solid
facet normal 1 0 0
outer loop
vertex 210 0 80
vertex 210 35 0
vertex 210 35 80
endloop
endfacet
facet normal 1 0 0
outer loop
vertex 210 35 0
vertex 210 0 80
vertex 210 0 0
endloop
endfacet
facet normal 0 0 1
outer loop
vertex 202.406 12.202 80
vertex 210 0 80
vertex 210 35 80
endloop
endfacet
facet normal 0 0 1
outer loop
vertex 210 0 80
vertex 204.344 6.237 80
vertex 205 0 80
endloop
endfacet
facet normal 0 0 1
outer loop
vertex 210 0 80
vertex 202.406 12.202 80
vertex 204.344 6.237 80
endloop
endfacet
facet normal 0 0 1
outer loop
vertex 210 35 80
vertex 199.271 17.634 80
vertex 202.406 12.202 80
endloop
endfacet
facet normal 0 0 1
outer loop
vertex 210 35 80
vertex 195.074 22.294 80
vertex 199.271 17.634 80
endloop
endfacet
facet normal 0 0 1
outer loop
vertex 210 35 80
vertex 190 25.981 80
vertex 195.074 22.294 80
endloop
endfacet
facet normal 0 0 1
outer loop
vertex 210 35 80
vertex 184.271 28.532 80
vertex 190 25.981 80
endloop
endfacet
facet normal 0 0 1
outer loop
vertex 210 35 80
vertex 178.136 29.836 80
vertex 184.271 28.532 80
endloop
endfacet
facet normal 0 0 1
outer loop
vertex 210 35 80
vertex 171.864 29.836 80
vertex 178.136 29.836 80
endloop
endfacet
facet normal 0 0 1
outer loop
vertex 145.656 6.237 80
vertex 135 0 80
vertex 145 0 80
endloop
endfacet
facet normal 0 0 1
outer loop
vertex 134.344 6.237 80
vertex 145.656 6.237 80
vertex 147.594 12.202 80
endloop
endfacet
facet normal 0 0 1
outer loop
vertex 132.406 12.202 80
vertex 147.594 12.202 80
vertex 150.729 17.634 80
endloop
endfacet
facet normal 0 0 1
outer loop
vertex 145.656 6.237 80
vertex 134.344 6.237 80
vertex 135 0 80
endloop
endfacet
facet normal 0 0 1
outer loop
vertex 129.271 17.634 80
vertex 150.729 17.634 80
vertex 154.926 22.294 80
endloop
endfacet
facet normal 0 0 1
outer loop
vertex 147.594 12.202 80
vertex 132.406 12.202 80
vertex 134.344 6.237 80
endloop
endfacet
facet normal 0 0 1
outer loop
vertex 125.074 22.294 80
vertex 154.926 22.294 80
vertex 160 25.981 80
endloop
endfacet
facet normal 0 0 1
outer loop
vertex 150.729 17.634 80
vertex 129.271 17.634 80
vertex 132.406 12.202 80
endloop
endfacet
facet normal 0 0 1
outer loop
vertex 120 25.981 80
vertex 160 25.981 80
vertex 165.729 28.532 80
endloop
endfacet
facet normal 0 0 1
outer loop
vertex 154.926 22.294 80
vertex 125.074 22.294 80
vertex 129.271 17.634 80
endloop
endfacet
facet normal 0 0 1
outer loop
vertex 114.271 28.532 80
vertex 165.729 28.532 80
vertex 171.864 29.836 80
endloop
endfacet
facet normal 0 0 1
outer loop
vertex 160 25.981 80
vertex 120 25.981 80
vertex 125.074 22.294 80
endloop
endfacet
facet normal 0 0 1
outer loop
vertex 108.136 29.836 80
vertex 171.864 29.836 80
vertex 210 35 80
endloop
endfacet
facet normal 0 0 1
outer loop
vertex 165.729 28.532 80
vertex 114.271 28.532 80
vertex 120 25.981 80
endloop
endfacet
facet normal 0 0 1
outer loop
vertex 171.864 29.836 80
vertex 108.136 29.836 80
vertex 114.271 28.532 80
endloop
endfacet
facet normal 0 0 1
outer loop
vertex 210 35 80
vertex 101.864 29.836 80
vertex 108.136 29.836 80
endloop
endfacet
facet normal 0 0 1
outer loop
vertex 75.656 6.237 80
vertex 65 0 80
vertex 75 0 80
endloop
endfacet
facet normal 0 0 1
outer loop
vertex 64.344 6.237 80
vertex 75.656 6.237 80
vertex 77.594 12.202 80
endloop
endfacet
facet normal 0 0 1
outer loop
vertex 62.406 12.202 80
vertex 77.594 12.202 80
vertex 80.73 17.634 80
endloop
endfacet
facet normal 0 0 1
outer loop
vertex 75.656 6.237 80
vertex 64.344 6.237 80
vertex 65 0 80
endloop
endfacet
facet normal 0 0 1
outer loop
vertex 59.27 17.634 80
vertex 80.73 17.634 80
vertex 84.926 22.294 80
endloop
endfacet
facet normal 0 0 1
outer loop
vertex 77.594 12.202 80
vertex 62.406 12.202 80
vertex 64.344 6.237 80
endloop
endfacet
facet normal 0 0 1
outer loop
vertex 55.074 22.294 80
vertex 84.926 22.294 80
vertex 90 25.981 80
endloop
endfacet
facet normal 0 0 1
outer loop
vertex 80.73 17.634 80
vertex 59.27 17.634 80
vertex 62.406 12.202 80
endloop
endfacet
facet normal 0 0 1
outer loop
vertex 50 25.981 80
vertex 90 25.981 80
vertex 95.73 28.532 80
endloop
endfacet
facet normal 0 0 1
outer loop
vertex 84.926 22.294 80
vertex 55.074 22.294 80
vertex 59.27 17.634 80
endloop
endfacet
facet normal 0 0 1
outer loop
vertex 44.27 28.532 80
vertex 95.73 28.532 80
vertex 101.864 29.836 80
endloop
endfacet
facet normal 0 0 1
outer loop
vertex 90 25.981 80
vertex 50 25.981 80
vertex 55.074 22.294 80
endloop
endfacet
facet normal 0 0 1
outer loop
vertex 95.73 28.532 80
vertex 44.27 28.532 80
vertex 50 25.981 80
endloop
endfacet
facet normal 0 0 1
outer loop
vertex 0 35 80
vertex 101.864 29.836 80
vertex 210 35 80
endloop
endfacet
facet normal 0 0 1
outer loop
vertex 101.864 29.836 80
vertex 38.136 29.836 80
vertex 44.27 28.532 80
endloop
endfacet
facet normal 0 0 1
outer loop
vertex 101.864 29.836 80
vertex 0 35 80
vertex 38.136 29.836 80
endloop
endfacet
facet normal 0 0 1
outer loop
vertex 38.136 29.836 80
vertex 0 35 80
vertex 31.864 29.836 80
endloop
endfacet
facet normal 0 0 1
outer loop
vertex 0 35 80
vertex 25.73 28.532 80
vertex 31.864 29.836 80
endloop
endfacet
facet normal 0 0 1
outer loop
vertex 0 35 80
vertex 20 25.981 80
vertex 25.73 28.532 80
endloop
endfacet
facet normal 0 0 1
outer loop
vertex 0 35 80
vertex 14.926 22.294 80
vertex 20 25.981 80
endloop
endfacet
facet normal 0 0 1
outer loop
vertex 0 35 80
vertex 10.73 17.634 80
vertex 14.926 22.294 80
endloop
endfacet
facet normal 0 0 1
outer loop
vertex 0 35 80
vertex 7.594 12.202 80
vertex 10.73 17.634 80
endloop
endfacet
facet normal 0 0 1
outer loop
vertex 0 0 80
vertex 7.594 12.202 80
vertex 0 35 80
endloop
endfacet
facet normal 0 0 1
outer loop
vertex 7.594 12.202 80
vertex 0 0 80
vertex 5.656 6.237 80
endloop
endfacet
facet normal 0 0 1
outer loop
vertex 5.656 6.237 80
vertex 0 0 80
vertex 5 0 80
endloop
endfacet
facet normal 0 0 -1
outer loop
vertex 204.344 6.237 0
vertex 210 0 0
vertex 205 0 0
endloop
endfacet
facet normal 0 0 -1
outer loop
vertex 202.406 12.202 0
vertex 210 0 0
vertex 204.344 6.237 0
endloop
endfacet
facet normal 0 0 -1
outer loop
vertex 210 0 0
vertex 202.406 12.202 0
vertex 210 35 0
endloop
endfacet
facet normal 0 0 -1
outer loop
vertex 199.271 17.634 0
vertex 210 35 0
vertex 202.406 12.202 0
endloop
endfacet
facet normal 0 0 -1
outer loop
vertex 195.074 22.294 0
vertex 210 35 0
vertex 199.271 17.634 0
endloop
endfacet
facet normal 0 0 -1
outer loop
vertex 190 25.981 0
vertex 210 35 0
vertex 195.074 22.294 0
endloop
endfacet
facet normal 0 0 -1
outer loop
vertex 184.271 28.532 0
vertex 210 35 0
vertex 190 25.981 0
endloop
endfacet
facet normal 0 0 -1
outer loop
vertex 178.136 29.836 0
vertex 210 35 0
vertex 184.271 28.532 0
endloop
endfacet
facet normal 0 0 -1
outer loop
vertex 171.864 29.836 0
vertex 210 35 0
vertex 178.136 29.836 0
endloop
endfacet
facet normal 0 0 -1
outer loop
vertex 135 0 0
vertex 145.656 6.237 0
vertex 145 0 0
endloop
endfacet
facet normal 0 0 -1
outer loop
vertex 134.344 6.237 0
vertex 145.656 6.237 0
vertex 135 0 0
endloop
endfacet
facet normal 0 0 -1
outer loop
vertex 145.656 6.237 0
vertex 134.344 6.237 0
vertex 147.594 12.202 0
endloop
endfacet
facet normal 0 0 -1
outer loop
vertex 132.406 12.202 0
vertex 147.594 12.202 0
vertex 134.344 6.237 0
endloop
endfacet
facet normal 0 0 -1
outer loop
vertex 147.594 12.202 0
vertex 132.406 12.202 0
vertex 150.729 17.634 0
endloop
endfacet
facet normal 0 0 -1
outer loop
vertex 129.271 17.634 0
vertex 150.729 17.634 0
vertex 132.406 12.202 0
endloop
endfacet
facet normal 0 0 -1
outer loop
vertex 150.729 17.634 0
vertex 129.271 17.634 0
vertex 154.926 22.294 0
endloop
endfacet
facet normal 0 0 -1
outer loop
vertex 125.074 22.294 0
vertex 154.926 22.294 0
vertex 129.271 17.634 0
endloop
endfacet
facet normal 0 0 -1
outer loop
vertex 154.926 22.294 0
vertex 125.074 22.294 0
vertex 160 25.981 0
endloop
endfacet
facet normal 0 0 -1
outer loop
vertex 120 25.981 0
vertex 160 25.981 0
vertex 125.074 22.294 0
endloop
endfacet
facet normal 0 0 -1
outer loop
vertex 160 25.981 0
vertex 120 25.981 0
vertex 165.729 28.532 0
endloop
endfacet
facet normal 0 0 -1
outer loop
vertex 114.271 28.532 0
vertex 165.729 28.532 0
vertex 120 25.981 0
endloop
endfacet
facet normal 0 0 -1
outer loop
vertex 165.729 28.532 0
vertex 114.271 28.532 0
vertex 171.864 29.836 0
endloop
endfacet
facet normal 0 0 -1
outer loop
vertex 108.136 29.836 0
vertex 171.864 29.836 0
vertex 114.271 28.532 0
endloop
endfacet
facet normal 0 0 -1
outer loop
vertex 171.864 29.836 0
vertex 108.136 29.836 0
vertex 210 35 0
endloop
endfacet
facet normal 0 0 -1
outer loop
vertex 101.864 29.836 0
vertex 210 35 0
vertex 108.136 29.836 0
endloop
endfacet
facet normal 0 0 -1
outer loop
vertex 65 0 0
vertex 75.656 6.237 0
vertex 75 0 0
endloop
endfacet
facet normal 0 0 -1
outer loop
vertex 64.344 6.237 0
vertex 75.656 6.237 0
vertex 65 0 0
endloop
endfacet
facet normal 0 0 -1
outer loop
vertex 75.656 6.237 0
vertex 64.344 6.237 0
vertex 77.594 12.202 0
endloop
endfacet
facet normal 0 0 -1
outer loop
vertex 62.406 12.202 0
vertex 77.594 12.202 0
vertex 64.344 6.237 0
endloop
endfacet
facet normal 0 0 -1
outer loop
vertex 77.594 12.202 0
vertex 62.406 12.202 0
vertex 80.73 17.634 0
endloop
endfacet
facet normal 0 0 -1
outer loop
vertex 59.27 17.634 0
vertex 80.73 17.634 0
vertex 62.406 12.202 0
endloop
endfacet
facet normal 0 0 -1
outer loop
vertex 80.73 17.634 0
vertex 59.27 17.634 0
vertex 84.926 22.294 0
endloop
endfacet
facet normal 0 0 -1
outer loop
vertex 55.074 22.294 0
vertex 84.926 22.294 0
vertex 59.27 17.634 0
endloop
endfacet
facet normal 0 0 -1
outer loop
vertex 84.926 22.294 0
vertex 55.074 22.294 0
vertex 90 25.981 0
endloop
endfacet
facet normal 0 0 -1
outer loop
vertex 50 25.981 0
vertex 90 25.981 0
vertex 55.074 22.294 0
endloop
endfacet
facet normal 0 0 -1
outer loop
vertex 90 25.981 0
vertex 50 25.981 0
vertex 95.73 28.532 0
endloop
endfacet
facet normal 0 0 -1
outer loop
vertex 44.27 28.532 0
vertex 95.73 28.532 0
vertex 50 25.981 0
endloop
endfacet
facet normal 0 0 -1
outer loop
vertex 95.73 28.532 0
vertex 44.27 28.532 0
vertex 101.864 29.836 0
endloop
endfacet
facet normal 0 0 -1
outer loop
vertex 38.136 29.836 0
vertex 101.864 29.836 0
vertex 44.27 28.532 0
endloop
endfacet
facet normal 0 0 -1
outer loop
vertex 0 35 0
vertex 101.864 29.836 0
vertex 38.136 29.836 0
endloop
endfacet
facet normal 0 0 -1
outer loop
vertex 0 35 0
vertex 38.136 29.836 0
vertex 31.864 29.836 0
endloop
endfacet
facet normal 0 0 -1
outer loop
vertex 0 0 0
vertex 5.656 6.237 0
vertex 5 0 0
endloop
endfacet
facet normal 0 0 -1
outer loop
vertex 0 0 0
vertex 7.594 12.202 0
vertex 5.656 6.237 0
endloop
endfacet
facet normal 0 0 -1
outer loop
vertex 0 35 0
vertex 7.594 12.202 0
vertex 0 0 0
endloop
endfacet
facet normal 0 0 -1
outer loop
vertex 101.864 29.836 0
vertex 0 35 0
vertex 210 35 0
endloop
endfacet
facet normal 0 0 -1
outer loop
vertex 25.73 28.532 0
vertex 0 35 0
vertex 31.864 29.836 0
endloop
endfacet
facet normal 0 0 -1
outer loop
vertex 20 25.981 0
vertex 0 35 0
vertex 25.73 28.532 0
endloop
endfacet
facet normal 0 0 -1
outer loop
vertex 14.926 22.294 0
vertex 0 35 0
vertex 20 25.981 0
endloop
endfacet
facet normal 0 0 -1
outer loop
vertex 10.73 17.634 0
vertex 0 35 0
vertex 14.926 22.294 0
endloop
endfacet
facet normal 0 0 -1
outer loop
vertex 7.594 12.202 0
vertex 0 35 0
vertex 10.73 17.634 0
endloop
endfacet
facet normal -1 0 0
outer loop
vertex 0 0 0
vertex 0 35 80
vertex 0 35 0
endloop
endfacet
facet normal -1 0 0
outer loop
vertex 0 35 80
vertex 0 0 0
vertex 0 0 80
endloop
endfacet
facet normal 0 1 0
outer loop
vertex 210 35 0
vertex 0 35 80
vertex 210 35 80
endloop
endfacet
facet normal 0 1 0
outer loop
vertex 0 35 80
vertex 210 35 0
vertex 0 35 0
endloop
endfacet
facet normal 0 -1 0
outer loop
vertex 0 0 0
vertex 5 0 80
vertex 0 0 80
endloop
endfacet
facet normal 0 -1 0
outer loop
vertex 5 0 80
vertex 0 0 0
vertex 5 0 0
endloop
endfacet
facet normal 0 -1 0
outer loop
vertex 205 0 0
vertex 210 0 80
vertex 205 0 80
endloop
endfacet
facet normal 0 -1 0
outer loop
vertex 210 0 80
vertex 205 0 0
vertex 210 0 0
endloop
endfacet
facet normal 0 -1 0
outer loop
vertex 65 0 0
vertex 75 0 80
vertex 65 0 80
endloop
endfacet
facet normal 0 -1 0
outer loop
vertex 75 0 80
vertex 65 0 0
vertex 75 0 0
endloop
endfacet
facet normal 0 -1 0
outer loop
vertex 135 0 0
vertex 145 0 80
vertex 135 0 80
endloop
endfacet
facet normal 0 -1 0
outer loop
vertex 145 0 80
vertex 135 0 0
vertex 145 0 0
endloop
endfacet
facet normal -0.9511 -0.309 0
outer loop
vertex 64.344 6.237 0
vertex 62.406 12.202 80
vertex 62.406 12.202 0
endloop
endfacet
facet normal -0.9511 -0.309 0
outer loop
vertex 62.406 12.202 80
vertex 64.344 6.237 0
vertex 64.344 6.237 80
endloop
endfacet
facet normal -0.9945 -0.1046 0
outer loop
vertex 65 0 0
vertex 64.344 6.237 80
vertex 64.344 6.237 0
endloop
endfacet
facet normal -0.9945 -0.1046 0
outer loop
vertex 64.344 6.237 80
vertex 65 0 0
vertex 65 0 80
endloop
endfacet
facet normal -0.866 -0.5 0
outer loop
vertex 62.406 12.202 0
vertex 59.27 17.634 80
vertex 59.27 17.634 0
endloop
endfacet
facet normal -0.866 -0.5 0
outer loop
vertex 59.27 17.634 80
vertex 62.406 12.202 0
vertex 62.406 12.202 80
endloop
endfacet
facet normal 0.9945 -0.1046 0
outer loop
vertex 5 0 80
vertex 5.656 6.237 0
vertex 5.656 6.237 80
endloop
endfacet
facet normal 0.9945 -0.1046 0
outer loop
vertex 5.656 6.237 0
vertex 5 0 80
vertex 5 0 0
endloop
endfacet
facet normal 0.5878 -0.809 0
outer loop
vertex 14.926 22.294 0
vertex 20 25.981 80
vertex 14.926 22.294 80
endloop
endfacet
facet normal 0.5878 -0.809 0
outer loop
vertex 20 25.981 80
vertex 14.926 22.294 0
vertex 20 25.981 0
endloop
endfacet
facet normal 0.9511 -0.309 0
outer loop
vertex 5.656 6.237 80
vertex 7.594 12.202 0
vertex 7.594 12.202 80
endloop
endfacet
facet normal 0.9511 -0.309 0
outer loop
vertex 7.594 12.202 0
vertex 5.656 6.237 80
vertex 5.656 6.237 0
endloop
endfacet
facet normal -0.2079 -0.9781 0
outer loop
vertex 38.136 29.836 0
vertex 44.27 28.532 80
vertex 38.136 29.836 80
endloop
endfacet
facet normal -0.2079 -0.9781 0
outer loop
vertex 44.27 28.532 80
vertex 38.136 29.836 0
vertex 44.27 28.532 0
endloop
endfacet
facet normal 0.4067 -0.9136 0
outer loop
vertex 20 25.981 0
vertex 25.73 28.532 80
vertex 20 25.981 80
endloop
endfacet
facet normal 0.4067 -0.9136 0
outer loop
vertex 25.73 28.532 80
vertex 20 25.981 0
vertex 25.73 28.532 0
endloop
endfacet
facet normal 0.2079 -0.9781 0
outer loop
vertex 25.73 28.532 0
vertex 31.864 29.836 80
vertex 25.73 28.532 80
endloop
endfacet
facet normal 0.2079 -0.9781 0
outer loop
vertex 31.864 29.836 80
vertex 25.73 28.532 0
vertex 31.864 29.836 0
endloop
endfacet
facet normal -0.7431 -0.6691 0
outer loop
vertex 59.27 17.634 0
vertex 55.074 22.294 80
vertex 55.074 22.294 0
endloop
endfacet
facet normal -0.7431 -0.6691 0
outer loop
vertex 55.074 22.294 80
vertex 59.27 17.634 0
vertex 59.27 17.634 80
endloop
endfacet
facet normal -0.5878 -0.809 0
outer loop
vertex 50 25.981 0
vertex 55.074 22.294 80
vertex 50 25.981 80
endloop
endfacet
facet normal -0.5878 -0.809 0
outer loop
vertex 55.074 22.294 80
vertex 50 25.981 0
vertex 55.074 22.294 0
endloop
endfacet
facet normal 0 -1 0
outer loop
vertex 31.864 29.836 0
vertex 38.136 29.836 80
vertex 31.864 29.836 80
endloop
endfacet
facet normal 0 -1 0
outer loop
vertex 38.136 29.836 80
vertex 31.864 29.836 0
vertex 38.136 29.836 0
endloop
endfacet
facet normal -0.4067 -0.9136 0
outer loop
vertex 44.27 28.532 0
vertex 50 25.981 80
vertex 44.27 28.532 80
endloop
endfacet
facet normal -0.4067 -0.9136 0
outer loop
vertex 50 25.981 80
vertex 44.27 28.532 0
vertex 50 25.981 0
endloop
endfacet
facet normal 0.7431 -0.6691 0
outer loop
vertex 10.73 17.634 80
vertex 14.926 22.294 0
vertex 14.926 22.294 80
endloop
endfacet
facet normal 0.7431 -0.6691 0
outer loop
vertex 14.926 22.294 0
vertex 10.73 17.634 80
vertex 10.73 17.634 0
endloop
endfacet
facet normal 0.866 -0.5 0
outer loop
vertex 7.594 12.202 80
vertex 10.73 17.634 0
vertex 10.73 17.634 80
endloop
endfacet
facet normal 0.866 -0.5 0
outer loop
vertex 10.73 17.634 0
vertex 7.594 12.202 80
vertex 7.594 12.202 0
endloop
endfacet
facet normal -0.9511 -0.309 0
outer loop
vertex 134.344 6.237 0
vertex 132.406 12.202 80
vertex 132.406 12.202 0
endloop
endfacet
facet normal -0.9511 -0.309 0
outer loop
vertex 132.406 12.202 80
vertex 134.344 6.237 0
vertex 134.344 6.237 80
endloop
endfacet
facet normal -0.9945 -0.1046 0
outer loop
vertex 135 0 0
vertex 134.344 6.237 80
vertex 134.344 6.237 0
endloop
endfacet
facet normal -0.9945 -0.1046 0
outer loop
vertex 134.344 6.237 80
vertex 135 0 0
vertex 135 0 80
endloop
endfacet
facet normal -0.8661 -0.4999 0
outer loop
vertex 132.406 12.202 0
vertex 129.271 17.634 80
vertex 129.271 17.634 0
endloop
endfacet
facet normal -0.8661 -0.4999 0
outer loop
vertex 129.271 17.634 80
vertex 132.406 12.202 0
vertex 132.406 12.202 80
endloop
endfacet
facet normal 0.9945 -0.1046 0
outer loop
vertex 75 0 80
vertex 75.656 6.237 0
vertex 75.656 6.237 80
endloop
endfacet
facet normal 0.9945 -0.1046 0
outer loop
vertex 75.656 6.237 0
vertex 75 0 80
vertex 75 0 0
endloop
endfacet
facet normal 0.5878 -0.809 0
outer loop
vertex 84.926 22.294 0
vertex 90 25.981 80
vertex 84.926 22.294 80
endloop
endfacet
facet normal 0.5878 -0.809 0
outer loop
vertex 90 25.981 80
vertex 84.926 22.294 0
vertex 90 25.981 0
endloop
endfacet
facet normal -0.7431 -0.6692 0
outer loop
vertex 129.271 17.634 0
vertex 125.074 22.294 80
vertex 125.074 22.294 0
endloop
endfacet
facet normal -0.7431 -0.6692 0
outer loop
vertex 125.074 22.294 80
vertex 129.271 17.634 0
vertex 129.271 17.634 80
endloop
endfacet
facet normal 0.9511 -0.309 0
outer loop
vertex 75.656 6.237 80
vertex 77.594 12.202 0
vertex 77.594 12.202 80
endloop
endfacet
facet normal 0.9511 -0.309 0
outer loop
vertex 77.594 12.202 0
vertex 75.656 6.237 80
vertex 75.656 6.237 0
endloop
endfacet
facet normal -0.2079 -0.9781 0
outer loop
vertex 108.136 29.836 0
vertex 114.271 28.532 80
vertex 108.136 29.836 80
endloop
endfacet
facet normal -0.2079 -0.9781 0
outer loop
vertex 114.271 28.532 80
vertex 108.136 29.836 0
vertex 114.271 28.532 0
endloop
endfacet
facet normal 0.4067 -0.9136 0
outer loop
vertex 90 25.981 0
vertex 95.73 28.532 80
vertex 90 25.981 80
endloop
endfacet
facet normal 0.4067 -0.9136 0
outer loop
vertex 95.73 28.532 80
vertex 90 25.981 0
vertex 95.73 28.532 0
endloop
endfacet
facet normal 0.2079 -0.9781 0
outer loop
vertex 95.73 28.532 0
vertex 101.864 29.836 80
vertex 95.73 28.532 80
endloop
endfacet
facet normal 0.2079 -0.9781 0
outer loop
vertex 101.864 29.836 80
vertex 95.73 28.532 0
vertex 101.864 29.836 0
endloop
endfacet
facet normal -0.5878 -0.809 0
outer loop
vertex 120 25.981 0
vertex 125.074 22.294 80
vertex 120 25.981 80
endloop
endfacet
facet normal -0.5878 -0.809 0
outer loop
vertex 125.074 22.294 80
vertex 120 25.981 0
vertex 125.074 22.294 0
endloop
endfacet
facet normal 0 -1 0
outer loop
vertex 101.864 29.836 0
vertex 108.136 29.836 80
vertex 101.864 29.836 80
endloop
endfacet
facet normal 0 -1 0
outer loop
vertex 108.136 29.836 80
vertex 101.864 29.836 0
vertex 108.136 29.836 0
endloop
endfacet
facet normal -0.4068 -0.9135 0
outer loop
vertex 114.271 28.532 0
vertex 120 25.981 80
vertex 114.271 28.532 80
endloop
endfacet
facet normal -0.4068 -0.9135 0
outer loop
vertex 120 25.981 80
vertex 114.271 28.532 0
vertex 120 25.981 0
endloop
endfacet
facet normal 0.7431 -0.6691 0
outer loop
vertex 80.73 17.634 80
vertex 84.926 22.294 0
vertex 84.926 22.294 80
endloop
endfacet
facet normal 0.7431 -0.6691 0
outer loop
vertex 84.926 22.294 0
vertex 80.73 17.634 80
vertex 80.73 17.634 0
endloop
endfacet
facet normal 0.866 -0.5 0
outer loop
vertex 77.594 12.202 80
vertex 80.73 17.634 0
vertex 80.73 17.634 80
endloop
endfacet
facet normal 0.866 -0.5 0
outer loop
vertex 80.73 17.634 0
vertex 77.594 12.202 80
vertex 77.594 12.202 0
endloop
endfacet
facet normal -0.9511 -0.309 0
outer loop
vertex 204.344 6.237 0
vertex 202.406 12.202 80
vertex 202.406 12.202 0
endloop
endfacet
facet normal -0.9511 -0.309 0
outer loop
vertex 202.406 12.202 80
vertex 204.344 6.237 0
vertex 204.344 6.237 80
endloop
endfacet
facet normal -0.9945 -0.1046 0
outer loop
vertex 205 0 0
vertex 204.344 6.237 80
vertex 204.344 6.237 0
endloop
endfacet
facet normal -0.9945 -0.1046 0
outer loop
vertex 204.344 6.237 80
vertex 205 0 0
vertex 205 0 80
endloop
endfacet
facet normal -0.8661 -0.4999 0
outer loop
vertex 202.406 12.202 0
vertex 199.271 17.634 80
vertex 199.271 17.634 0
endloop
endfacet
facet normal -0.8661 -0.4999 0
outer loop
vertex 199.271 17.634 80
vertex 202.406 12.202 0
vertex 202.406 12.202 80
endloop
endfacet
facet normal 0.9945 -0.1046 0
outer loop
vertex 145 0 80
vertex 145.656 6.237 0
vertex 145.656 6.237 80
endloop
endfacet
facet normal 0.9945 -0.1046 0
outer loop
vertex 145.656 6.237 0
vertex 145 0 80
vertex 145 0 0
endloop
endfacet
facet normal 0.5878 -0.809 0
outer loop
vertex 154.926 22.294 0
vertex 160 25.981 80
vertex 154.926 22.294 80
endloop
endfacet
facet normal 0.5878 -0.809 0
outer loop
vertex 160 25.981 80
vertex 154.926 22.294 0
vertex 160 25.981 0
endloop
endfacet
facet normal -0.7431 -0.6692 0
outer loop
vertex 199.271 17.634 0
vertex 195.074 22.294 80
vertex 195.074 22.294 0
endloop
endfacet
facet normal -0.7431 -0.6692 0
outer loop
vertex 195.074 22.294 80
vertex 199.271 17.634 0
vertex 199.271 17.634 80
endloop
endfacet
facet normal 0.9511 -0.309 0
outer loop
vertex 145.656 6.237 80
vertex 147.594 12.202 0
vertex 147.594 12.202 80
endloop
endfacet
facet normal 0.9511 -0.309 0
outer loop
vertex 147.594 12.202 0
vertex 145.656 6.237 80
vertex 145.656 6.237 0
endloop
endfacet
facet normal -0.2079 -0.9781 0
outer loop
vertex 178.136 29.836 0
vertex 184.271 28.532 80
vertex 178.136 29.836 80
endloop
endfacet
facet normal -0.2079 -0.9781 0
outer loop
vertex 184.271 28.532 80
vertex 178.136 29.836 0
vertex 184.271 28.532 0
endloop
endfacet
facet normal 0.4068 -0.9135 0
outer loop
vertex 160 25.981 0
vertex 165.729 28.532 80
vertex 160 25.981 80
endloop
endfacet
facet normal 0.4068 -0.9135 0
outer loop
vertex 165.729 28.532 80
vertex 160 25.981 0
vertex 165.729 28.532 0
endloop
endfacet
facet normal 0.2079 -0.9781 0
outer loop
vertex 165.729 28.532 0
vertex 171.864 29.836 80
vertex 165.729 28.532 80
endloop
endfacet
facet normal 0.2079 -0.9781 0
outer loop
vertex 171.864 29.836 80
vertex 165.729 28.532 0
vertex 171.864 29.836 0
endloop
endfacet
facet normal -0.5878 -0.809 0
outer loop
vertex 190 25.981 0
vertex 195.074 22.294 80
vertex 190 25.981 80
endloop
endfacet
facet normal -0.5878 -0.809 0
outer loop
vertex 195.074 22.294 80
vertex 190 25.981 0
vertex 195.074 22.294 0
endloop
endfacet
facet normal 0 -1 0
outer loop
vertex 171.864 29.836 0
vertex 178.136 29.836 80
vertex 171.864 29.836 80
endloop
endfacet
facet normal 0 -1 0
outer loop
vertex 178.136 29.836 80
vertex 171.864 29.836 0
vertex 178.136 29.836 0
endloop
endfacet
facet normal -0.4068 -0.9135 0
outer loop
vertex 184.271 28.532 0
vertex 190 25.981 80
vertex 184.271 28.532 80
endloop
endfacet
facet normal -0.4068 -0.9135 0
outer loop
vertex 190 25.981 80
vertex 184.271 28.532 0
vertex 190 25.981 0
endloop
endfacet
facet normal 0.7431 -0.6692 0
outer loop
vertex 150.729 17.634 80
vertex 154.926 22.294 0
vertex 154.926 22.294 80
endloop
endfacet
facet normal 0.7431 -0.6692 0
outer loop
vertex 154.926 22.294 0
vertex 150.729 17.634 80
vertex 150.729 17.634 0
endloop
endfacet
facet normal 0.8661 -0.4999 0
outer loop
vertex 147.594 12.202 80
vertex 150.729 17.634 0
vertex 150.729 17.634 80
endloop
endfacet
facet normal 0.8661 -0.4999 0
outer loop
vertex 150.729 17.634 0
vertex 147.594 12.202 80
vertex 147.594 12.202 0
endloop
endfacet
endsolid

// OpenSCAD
BD=60;
H=80;

module main() {
  difference() {
    cube([210,BD/2+5,H]);
    #translate([BD/2+5,0,0]) cylinder(H,d=BD);
    #translate([3*(BD/2+5),0,0]) cylinder(H,d=BD);
    #translate([5*(BD/2+5),0,0]) cylinder(H,d=BD);
  }
}

main();
